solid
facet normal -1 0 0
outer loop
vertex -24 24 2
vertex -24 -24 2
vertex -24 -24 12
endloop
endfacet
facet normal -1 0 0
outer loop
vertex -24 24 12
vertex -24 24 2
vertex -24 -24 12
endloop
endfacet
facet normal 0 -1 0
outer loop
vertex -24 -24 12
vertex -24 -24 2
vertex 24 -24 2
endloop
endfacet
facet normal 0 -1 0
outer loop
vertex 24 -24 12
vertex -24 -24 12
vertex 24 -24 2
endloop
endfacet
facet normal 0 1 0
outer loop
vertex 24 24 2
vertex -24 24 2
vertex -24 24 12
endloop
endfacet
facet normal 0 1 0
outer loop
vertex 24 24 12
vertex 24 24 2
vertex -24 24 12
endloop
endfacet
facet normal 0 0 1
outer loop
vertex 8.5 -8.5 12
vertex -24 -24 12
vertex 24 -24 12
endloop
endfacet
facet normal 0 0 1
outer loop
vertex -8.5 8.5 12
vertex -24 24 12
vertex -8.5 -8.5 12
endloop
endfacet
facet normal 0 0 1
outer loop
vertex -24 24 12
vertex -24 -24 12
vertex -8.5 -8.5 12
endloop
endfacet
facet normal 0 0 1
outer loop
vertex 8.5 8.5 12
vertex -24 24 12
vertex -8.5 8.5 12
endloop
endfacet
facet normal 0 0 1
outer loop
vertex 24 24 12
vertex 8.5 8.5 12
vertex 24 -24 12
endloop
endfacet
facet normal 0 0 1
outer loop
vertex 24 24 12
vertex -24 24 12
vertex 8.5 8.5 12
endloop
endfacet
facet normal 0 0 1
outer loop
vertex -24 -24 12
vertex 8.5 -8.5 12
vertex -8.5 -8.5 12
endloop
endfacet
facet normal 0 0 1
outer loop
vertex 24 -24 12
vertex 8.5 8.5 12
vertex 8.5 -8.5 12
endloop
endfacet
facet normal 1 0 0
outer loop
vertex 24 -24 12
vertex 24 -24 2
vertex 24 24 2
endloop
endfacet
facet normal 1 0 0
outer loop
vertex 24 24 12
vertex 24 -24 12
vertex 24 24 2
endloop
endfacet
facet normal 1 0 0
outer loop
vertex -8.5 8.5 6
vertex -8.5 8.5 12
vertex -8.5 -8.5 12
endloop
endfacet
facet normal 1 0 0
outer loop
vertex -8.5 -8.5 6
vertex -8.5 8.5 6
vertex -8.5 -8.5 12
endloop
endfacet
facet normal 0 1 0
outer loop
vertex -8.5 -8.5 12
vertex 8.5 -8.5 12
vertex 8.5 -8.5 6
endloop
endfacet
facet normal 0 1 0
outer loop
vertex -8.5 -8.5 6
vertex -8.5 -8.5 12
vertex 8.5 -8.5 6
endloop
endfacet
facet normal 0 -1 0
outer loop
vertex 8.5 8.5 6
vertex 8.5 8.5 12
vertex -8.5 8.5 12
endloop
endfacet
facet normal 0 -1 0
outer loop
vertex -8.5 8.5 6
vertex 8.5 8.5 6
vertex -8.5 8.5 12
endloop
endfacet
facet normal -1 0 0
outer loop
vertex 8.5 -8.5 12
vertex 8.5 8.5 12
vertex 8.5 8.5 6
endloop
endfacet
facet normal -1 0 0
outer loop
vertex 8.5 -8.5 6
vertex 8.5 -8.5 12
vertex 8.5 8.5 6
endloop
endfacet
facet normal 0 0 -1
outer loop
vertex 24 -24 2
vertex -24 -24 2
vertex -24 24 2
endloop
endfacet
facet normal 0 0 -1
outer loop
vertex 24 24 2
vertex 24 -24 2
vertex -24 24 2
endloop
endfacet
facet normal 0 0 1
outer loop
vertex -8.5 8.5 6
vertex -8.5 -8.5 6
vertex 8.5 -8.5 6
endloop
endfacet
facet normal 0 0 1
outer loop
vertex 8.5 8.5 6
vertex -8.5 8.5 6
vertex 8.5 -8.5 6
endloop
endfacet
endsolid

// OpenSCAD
 translate([0,0,8])
difference () {
cube([48, 48,8], true);
cube([17, 17, 8], true);
};

translate([0,0,4])

cube([48,48,4],true);
